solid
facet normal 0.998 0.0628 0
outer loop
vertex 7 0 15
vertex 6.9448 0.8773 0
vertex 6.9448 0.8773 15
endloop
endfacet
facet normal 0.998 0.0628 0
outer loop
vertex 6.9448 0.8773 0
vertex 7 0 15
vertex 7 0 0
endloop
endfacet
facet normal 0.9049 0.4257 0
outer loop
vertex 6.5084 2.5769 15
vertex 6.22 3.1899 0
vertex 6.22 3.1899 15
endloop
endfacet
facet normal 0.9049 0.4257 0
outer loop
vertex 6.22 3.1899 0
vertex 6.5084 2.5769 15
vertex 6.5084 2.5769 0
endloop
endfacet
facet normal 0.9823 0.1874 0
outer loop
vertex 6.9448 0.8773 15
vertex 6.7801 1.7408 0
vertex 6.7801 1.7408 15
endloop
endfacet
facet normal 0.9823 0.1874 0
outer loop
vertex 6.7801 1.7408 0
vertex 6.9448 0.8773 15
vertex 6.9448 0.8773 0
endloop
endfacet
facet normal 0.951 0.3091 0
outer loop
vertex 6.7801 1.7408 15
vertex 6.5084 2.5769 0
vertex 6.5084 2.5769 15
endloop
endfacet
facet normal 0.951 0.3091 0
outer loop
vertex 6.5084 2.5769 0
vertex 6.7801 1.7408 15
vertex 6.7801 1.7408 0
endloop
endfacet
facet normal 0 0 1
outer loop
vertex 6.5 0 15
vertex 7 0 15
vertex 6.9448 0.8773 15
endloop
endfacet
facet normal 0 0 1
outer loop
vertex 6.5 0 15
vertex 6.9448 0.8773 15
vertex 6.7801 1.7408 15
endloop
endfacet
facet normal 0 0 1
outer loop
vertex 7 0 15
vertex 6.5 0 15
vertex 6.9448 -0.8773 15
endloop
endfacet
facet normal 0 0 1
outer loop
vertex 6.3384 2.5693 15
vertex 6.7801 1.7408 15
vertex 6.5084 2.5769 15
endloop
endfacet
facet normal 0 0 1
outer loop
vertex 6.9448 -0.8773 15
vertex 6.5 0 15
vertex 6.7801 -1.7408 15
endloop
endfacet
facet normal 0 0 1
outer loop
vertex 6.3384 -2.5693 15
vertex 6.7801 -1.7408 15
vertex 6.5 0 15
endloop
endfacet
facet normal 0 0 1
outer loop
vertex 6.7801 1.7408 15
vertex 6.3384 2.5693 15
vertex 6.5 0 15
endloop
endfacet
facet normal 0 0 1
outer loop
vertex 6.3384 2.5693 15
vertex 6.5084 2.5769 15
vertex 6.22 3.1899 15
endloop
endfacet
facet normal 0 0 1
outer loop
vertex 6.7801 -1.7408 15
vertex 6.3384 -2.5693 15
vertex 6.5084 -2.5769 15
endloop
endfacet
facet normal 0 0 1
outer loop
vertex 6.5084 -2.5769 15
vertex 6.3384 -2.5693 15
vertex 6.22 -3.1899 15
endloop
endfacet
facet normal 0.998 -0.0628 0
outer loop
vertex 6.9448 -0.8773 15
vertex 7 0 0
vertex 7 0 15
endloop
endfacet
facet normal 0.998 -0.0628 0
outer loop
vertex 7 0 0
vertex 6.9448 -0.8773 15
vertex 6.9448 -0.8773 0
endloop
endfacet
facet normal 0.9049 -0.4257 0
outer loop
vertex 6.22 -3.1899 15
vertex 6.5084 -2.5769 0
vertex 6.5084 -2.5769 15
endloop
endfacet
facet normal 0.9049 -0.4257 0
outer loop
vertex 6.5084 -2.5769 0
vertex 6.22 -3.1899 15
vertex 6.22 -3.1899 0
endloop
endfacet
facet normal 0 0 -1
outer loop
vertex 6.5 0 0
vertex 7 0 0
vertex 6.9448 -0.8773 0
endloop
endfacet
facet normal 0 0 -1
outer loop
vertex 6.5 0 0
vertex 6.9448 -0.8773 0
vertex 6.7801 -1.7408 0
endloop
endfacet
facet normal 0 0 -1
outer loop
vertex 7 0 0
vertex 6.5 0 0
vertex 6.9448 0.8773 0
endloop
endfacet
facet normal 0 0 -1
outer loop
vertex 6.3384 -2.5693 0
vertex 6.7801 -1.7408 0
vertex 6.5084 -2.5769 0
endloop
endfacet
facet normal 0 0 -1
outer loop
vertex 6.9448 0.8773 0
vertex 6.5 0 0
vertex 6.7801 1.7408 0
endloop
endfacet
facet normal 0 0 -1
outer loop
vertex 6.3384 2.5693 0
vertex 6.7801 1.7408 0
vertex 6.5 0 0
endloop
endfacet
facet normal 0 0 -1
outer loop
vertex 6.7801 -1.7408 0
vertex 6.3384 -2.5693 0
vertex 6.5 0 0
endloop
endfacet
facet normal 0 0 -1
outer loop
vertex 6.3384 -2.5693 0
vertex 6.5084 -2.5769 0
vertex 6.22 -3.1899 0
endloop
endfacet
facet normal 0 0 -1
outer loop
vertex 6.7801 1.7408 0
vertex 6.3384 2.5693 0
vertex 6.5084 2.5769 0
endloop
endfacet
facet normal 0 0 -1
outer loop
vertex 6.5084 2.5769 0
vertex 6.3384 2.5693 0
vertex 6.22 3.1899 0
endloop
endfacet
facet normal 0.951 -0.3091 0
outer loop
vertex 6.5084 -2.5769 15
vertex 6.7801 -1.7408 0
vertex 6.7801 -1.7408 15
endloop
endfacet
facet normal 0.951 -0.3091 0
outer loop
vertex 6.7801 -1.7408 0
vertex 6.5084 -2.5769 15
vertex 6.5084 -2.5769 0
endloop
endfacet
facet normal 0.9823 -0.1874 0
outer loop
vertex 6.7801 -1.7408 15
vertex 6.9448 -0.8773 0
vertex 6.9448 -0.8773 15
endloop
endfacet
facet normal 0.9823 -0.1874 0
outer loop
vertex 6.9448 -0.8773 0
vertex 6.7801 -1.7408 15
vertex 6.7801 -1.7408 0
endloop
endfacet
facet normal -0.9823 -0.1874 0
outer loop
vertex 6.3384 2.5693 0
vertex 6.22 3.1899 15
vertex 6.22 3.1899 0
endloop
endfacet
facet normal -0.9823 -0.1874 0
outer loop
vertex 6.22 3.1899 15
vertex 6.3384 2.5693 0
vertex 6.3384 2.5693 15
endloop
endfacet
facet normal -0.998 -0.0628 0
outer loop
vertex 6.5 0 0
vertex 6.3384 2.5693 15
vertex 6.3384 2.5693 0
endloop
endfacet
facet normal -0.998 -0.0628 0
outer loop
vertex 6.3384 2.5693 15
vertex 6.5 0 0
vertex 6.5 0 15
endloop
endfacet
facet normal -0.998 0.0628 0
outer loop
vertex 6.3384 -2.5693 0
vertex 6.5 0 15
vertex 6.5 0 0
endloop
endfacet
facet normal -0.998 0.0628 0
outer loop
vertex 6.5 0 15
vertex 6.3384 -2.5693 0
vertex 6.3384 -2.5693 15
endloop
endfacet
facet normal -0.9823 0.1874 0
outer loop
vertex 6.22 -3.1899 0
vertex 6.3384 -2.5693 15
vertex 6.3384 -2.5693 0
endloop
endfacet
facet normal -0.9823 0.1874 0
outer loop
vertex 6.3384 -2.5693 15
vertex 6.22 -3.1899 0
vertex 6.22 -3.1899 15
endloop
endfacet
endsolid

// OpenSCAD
$fn = 50;


difference() {
	union() {
		cylinder(h = 15, r = 7.0000000000);
		translate(v = [-17.0000000000, 0, 0]) {
			cylinder(h = 15, r = 7.0000000000);
		}
	}
	union() {
		cylinder(h = 15, r = 3.2500000000);
		cylinder(h = 15, r = 1.8000000000);
		cylinder(h = 15, r = 1.8000000000);
		cylinder(h = 15, r = 1.8000000000);
		translate(v = [-21.5000000000, 0, 0]) {
			hull() {
				translate(v = [-3.7500000000, 0.0000000000, 0]) {
					cylinder(h = 15, r = 10.5000000000);
				}
				translate(v = [3.7500000000, 0.0000000000, 0]) {
					cylinder(h = 15, r = 10.5000000000);
				}
				translate(v = [-3.7500000000, -0.0000000000, 0]) {
					cylinder(h = 15, r = 10.5000000000);
				}
				translate(v = [3.7500000000, -0.0000000000, 0]) {
					cylinder(h = 15, r = 10.5000000000);
				}
			}
		}
		translate(v = [-14.0000000000, 0, 0.0000000000]) {
			cylinder(h = 15, r = 20.5000000000);
		}
	}
}
